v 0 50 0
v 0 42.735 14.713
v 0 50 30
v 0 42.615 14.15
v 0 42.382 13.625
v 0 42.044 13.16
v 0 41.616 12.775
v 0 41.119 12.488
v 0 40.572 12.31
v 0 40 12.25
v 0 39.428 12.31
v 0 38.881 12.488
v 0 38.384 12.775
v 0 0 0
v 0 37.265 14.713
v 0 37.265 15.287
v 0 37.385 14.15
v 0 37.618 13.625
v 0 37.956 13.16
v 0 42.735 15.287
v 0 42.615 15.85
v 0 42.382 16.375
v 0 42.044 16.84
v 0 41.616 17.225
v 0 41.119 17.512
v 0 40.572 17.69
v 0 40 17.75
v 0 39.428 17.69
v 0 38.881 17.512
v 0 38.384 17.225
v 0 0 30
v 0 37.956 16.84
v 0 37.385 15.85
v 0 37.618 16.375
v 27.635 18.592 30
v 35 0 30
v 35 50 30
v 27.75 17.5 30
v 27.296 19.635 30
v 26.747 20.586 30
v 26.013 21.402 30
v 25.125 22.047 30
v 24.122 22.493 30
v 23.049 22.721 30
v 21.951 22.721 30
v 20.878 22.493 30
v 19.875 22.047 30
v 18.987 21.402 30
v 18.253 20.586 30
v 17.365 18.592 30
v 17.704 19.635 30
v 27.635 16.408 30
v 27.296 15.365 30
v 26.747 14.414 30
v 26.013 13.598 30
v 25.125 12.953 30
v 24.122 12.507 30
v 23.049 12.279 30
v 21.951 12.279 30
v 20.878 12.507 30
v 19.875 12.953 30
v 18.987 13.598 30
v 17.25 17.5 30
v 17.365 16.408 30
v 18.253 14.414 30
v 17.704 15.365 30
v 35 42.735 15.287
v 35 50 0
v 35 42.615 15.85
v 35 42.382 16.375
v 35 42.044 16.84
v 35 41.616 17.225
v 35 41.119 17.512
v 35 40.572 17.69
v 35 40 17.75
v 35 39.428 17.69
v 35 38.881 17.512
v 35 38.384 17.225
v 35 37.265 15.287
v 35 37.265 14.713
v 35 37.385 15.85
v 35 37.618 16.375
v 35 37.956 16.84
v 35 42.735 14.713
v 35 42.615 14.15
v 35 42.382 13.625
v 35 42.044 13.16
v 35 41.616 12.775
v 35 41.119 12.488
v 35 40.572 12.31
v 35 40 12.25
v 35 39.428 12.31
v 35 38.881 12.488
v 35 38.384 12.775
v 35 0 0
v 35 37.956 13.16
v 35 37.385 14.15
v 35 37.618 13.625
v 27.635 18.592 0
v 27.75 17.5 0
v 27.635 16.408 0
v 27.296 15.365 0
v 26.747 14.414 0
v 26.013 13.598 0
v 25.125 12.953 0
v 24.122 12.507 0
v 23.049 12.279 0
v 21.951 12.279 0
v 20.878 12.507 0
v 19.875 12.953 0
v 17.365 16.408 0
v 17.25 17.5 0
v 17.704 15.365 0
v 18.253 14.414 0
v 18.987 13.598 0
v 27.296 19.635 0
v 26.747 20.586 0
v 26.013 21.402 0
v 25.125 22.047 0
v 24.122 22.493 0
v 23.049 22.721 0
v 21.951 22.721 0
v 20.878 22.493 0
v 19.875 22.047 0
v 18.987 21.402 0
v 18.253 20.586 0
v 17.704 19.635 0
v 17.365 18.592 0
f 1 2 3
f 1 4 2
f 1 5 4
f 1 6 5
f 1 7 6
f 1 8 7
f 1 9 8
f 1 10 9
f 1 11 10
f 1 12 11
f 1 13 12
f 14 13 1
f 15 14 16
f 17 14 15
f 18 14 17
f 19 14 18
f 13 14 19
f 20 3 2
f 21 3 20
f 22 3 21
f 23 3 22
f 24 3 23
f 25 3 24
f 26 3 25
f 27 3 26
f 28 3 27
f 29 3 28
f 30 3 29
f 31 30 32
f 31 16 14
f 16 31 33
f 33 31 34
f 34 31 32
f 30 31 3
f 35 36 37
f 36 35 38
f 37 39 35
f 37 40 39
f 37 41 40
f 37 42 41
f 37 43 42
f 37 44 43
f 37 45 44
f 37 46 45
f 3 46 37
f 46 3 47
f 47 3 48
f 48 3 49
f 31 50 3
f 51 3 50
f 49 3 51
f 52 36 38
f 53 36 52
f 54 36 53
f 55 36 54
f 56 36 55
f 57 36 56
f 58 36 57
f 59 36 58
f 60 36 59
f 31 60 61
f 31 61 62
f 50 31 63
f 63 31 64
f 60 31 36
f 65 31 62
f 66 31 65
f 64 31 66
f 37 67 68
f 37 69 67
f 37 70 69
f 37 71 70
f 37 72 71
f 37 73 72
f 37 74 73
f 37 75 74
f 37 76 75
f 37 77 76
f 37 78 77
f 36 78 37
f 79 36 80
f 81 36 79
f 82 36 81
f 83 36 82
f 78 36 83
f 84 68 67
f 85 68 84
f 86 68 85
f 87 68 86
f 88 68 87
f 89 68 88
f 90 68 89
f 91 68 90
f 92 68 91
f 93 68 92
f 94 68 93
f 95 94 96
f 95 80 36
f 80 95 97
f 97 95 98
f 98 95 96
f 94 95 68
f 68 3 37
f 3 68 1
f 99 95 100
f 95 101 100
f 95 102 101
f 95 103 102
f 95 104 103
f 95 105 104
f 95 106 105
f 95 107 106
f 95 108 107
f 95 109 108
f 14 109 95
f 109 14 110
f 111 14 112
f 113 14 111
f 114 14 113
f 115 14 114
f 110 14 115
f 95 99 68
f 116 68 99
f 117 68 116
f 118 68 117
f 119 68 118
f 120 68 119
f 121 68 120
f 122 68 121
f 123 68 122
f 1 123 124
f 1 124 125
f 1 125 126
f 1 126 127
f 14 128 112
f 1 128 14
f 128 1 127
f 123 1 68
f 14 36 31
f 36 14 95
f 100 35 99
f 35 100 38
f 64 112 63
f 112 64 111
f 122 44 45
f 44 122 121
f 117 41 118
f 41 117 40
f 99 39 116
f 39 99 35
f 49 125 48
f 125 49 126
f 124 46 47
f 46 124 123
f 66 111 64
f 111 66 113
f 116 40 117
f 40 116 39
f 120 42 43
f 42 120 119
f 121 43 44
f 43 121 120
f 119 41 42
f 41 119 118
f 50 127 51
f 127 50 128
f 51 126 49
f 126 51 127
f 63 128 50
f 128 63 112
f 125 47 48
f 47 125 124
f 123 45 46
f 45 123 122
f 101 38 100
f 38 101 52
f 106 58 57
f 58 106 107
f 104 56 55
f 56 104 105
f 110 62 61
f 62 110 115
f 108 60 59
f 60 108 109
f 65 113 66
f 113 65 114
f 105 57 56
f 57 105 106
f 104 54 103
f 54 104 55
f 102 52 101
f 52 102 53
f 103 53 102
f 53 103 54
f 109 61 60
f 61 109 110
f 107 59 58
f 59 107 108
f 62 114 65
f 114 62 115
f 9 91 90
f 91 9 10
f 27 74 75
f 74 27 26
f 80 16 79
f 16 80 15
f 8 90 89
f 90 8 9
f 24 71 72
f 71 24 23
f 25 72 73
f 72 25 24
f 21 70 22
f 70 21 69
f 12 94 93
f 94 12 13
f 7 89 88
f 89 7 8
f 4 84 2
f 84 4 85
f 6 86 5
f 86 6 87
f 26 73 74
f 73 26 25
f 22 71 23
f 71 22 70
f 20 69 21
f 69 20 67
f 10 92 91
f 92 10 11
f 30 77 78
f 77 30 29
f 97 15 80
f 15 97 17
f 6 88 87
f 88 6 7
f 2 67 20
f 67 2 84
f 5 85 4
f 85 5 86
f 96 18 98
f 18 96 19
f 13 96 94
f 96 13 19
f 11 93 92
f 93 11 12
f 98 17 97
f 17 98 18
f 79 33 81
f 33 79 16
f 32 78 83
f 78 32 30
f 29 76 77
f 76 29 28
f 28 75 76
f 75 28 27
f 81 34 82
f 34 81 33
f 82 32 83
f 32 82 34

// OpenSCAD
$fn=30;
difference(){
cube([35,50,30]);
translate([22.5,17.5,-1])cylinder(d=10.5,h=40);
translate([0,40,15])rotate([0,90,0])cylinder(d=5.5,h=40);
}
